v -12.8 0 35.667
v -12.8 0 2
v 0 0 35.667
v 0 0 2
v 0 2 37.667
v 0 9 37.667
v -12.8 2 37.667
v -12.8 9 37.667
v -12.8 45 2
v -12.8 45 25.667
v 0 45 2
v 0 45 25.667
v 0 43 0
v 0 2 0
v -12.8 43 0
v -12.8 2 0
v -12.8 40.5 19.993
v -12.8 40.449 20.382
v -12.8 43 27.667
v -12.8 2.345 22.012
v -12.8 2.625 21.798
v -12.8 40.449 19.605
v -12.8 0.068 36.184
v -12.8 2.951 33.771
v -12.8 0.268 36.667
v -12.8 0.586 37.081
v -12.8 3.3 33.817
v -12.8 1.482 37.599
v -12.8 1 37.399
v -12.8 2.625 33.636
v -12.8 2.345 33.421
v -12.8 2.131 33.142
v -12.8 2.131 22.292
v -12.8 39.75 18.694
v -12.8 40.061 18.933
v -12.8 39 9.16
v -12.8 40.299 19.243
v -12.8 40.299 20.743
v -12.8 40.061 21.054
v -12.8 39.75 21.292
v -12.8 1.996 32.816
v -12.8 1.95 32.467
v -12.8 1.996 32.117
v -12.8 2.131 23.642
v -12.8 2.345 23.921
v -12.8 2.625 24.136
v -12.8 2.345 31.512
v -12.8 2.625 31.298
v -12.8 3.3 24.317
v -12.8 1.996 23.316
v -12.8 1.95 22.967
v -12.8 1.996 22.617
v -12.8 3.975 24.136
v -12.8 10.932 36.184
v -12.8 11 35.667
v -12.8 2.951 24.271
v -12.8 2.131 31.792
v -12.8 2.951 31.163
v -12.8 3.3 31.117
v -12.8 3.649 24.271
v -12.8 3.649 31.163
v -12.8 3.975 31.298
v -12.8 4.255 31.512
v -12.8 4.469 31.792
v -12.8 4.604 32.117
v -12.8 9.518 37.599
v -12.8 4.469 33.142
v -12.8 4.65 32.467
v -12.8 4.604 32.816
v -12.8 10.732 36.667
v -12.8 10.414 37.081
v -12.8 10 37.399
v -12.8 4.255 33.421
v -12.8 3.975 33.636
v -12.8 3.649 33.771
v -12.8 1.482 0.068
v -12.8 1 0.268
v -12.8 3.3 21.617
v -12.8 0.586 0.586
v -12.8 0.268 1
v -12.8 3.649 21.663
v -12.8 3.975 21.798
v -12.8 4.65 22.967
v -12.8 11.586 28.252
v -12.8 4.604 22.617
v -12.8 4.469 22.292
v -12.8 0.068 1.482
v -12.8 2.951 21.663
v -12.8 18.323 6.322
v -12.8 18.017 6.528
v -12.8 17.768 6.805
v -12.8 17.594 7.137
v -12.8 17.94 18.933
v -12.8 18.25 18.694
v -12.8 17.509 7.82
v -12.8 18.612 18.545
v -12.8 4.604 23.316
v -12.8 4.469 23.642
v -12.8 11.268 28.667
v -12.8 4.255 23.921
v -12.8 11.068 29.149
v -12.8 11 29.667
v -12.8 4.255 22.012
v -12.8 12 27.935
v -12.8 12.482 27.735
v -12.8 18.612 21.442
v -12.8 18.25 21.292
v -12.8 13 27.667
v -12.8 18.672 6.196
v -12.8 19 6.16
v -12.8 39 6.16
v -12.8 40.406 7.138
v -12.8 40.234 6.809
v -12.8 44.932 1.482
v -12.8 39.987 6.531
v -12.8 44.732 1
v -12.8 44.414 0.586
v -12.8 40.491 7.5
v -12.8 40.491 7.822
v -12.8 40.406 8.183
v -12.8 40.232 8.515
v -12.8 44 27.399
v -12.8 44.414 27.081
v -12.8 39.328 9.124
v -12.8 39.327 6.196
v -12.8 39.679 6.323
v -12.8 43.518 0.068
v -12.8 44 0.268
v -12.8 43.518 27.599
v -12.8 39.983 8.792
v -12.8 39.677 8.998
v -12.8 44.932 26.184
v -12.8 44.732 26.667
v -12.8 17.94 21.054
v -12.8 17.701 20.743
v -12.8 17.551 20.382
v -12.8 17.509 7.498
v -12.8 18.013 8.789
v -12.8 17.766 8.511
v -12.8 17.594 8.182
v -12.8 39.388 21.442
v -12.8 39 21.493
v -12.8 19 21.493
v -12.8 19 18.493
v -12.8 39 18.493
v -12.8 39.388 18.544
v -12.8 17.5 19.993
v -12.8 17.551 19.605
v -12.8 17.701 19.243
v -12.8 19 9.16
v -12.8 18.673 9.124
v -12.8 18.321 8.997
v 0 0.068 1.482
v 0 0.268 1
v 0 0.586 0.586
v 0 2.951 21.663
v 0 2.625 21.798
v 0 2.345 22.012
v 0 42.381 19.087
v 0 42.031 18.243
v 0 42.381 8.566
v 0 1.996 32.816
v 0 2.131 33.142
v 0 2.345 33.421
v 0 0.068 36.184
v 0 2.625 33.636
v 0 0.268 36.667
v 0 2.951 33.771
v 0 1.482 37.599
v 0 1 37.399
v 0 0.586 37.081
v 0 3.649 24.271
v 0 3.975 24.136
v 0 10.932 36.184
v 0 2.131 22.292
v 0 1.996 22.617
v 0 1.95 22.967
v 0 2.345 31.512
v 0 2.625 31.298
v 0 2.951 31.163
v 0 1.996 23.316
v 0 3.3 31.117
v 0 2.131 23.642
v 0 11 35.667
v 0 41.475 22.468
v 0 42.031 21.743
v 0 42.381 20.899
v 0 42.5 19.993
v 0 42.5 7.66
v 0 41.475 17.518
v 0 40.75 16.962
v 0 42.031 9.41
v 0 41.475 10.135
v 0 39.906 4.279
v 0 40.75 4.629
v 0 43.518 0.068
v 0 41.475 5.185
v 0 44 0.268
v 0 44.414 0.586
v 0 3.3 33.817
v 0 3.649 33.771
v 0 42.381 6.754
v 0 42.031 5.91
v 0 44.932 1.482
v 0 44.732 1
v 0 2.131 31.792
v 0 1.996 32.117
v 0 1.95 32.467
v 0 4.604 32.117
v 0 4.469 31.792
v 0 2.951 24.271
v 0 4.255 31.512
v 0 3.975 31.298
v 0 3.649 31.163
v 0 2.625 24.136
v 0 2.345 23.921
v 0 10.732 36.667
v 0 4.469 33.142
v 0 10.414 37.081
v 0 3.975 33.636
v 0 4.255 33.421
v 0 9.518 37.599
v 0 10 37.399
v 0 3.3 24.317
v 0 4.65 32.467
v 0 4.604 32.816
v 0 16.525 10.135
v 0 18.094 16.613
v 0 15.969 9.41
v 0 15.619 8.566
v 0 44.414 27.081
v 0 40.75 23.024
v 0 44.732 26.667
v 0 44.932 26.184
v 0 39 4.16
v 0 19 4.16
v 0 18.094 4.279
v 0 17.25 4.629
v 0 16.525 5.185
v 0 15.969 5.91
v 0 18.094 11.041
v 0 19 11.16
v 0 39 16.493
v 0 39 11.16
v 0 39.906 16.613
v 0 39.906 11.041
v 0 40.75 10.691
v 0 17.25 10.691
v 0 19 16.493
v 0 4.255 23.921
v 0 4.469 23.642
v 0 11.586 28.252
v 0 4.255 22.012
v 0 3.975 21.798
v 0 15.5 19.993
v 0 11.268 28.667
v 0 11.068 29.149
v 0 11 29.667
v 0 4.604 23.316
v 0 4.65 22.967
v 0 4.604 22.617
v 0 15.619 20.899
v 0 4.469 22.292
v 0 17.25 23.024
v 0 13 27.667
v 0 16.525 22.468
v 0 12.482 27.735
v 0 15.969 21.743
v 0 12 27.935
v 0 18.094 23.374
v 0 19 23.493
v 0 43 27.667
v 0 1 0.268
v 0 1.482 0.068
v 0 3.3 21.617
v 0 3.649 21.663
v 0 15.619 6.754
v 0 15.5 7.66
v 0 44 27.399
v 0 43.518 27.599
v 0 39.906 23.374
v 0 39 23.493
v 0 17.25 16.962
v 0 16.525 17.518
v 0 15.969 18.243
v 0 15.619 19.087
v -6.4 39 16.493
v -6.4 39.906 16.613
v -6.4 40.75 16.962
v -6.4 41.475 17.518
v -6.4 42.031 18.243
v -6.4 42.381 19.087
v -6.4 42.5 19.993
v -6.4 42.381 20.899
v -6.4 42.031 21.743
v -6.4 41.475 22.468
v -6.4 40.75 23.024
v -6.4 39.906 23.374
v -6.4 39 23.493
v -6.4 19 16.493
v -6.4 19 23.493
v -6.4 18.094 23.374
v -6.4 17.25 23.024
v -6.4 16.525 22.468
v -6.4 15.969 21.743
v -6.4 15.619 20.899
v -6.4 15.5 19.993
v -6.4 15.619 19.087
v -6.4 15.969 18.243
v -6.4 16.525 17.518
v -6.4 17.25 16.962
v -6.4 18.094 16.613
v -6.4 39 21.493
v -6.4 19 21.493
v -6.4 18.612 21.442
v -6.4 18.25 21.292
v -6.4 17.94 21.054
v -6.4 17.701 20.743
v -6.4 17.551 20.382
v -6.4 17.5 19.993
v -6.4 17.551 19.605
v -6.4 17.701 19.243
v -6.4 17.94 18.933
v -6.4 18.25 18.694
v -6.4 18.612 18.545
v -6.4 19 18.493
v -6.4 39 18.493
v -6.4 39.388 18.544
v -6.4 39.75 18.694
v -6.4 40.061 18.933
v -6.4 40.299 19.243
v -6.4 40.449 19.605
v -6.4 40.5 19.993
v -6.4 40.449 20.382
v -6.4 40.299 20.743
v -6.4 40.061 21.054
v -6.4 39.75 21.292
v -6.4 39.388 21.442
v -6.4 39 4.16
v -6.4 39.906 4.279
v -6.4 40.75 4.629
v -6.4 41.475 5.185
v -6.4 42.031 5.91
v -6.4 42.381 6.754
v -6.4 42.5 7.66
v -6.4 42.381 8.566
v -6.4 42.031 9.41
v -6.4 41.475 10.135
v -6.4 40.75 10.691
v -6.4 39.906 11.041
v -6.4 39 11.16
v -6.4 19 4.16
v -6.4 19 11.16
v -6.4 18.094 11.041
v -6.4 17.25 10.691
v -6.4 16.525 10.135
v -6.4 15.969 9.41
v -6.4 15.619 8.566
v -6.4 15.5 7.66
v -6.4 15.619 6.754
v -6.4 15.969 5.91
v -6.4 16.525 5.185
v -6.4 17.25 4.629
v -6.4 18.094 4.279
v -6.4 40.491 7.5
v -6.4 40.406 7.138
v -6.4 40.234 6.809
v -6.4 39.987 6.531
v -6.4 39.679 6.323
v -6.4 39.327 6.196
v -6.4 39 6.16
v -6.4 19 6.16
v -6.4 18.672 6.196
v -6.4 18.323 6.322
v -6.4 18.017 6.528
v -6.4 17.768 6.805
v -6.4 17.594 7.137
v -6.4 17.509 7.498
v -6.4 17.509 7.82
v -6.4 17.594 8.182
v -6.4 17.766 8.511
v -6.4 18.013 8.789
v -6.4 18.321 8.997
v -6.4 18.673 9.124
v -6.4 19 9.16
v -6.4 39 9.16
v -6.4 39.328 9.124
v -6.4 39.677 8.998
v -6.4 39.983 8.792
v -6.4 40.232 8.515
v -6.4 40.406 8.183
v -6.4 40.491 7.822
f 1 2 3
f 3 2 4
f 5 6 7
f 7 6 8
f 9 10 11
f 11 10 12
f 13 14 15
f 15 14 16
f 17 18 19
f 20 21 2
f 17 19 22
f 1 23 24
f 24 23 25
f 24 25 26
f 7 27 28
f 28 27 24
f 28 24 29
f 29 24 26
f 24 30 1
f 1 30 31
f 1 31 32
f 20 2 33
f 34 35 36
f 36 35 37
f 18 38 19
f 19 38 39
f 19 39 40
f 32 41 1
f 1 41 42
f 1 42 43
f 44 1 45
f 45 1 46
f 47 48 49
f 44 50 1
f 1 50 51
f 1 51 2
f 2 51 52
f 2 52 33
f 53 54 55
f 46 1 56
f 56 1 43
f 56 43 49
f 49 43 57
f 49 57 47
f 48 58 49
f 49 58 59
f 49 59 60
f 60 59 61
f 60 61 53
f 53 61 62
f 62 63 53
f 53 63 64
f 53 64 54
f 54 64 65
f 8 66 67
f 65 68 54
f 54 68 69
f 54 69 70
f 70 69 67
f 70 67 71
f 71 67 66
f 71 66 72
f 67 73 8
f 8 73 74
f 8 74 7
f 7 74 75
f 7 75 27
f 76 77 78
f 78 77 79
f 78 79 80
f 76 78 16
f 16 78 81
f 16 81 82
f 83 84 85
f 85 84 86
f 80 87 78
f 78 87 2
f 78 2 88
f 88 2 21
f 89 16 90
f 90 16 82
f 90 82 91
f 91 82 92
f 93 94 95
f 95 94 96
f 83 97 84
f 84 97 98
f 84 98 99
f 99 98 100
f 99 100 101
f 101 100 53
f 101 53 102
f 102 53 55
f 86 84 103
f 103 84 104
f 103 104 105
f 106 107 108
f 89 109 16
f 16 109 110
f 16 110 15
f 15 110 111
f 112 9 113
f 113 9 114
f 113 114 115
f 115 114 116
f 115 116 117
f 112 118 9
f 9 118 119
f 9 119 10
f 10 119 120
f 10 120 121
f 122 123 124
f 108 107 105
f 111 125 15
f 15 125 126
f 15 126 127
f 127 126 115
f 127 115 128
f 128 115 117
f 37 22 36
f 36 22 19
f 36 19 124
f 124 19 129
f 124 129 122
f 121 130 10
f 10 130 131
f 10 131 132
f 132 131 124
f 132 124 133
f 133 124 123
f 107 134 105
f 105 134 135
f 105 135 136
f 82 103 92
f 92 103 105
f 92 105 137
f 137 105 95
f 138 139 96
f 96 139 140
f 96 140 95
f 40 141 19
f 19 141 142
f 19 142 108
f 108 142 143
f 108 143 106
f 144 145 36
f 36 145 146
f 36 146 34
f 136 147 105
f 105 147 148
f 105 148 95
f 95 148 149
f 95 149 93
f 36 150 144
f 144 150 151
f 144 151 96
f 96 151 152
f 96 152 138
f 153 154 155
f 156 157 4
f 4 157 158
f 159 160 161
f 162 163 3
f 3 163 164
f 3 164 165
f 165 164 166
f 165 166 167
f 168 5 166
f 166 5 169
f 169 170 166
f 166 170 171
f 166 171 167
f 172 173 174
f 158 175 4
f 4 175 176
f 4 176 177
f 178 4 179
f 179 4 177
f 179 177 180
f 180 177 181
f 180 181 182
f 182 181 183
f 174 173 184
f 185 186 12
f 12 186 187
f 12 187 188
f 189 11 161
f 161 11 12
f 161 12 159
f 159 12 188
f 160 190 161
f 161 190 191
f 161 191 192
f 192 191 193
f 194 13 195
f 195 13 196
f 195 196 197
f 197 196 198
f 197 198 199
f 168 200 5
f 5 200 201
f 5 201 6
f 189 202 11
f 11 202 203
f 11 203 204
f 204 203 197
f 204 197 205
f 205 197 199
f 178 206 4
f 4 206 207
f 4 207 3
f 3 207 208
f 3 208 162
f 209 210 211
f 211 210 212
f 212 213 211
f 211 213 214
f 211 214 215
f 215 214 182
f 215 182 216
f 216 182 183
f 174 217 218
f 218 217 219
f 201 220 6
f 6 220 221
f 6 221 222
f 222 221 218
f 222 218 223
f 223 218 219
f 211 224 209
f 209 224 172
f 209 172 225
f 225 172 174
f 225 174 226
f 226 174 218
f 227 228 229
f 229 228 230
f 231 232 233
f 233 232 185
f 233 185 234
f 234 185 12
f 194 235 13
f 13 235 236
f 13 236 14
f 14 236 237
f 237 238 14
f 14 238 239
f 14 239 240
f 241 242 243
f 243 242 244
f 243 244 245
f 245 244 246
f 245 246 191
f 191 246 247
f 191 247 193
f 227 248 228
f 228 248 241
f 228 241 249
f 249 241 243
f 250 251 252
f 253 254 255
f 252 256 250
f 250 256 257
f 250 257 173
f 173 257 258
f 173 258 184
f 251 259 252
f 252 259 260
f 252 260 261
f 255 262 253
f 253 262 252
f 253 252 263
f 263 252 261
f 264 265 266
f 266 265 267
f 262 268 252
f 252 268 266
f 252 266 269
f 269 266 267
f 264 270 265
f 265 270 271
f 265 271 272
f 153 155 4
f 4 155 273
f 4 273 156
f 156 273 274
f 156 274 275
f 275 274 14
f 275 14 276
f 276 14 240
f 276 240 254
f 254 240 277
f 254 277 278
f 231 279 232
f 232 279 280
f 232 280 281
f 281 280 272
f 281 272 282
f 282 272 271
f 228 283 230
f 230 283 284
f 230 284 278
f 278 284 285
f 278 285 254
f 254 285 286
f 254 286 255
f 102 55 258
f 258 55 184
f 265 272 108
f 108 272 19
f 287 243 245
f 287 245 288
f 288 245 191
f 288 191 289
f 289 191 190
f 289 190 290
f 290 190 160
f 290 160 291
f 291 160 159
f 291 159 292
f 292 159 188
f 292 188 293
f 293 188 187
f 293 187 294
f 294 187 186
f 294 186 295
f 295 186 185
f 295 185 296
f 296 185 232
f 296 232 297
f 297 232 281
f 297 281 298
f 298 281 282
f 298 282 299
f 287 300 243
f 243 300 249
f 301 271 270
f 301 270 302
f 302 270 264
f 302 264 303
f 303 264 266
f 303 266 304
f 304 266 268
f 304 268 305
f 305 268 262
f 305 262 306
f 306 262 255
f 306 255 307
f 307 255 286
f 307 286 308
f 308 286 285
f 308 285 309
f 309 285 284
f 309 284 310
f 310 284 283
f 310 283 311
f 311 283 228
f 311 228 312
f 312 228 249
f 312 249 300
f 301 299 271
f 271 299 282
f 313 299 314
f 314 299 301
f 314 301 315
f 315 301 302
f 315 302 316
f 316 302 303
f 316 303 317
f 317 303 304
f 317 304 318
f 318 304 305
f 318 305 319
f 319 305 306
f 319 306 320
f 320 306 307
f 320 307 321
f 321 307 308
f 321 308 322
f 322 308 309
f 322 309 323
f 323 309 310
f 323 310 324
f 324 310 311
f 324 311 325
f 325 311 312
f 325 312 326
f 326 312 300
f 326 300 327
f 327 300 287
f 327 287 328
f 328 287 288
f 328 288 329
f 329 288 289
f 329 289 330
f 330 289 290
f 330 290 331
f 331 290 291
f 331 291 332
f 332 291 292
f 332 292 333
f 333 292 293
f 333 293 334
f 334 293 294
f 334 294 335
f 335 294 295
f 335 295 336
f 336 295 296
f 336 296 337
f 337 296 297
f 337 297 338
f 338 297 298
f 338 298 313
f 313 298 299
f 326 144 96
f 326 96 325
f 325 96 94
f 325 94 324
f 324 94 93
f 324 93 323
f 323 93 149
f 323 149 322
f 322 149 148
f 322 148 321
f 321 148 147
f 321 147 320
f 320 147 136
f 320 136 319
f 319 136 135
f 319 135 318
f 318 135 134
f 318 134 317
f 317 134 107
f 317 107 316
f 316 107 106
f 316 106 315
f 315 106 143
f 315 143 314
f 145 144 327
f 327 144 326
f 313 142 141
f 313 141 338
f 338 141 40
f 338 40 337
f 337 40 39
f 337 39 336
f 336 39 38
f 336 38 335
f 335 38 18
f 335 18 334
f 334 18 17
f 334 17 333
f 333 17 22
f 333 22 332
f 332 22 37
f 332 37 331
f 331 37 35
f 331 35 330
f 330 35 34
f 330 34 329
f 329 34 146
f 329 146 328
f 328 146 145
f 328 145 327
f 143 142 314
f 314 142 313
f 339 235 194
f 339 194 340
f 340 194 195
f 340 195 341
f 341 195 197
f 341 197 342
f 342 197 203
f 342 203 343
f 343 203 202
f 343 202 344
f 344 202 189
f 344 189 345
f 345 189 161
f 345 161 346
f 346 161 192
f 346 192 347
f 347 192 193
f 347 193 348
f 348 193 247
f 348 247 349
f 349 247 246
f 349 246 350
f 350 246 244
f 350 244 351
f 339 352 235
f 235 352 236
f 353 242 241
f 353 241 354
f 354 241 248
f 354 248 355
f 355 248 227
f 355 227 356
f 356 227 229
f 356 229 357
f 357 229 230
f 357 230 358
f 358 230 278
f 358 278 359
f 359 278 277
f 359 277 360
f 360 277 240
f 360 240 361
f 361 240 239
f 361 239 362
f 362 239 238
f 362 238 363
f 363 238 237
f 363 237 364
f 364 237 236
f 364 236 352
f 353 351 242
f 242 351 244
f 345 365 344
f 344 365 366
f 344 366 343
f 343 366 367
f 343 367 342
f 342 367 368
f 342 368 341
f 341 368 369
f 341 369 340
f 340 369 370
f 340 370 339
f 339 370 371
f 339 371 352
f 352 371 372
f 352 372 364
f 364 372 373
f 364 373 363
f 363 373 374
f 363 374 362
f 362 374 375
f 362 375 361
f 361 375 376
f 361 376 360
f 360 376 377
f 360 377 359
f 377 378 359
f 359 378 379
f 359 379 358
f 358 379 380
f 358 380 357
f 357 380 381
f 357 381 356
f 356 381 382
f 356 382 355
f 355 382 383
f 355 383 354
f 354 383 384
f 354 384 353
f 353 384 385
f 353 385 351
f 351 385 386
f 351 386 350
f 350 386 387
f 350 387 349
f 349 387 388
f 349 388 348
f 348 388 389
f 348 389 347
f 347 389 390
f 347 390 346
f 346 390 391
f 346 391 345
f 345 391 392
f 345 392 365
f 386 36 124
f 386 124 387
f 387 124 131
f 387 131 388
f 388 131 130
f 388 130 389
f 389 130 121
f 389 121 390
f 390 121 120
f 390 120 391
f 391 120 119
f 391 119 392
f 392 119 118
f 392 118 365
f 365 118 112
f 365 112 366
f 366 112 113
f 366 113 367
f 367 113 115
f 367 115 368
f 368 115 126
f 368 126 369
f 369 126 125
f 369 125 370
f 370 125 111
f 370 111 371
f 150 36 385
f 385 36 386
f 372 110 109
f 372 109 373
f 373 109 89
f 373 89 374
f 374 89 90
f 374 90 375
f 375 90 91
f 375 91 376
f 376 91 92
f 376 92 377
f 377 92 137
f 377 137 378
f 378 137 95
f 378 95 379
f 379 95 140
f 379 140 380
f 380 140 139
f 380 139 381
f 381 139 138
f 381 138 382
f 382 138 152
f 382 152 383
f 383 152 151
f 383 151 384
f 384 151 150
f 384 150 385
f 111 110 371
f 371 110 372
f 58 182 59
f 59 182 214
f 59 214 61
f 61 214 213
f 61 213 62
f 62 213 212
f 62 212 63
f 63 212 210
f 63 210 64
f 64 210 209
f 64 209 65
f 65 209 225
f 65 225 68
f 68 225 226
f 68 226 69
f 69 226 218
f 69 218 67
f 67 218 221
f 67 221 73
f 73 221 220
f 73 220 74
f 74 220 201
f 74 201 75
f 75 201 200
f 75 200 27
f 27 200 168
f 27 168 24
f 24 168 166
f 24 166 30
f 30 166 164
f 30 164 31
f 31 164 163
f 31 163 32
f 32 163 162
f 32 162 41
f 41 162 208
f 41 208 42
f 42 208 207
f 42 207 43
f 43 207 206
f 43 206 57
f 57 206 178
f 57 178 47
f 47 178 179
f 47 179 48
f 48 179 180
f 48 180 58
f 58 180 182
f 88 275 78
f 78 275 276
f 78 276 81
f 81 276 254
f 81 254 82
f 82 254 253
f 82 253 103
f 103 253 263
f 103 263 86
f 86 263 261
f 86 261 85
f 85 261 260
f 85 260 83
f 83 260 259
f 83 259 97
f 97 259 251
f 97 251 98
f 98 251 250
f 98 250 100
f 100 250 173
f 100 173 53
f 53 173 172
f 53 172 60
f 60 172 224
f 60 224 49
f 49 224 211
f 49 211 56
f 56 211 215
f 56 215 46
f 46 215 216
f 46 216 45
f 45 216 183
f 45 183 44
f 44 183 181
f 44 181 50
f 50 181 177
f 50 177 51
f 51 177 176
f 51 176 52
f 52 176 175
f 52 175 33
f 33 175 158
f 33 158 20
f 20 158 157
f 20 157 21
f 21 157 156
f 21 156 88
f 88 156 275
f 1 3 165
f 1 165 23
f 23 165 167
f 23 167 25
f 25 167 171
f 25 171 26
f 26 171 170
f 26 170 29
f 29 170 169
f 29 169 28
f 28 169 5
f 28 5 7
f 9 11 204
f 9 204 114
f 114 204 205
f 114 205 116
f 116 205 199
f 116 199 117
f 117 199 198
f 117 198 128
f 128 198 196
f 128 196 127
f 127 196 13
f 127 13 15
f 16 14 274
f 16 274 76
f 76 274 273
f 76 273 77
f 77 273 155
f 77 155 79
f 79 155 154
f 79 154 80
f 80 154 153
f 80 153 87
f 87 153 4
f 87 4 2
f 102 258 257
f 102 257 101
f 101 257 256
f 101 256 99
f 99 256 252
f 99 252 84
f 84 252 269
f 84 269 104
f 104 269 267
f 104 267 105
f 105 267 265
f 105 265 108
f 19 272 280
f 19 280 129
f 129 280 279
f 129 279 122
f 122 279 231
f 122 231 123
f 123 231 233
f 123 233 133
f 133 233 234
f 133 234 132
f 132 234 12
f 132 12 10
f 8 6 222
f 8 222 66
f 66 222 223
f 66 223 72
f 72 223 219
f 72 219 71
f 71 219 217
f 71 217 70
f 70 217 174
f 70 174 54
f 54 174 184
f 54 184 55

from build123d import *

# Parameters (mm, degrees)
SKETCH1_W                  = 37.6666666
SKETCH1_H                  = 45
BOSS_EXTRUDE1_DEPTH        = 12.8
SKETCH2_W                  = 10
SKETCH2_H                  = 34
CUT_EXTRUDE1_DEPTH         = 61.063447893
CUT_EXTRUDE2_DEPTH         = 6.4
CUT_EXTRUDE3_DEPTH         = 61.063447893
CUT_EXTRUDE4_DEPTH         = 6.4
CUT_EXTRUDE5_DEPTH         = 61.063447893
F_2_7_2_7_DIAMETER_HOLE1_D = 2.7
FILLET1_R                  = 2


with BuildPart() as part:
    # Sketch1 → Boss-Extrude1 (new body)
    with BuildSketch(Plane(origin=(0, 0, 0), x_dir=(0, 0, -1), z_dir=(1, 0, 0))):
        with Locations((-18.8333333, 22.5)):
            Rectangle(SKETCH1_W, SKETCH1_H)
    extrude(amount=-BOSS_EXTRUDE1_DEPTH)

    # Sketch2 → Cut-Extrude1 (cut, through all)
    with BuildSketch(Plane.ZY.offset(12.8)):
        with Locations((32.6666666, 28)):
            Rectangle(SKETCH2_W, SKETCH2_H)
    extrude(amount=-CUT_EXTRUDE1_DEPTH, mode=Mode.SUBTRACT)

    # Sketch3 → Cut-Extrude2 (cut)
    with BuildSketch(Plane(origin=(0, 0, 0), x_dir=(0, 0, -1), z_dir=(1, 0, 0))):
        with BuildLine():
            Line((-23.4933333, 39), (-23.4933333, 19))
            ThreePointArc((-23.4933333, 19), (-19.9933333, 15.5), (-16.4933333, 19))
            Line((-16.4933333, 19), (-16.4933333, 39))
            ThreePointArc((-16.4933333, 39), (-19.9933333, 42.5), (-23.4933333, 39))
        make_face()
    extrude(amount=-CUT_EXTRUDE2_DEPTH, mode=Mode.SUBTRACT)

    # Sketch4 → Cut-Extrude3 (cut, through all)
    with BuildSketch(Plane.ZY.offset(12.8)):
        with BuildLine():
            Line((21.4933333, 19), (21.4933333, 39))
            ThreePointArc((21.4933333, 39), (19.9933333, 40.5), (18.4933333, 39))
            Line((18.4933333, 39), (18.4933333, 19))
            ThreePointArc((18.4933333, 19), (19.9933333, 17.500288491), (21.4933333, 19))
        make_face()
    extrude(amount=-CUT_EXTRUDE3_DEPTH, mode=Mode.SUBTRACT)

    # Sketch5 → Cut-Extrude4 (cut)
    with BuildSketch(Plane(origin=(0, 0, 0), x_dir=(0, 0, -1), z_dir=(1, 0, 0))):
        with BuildLine():
            Line((-11.16, 39), (-11.16, 19))
            ThreePointArc((-11.16, 19), (-7.66, 15.5), (-4.16, 19))
            Line((-4.16, 19), (-4.16, 39))
            ThreePointArc((-4.16, 39), (-7.66, 42.5), (-11.16, 39))
        make_face()
    extrude(amount=-CUT_EXTRUDE4_DEPTH, mode=Mode.SUBTRACT)

    # Sketch6 → Cut-Extrude5 (cut, through all)
    with BuildSketch(Plane.ZY.offset(12.8)):
        with BuildLine():
            Line((6.16, 39), (6.16, 19))
            add(Edge.make_bspline(
                [(6.16, 19), (6.16, 18.832340191), (6.188940738, 18.662362459), (6.244463512, 18.504163113), (6.299983926, 18.345970491), (6.383577698, 18.195200889), (6.488243805, 18.06423361), (6.593105783, 17.93302124), (6.722000277, 17.818058166), (6.864319793, 17.728851239), (7.006949165, 17.639450093), (7.167029387, 17.573470631), (7.331255049, 17.536516135), (7.494915324, 17.499688864), (7.667199859, 17.490652088), (7.833819766, 17.510113335), (8.000323921, 17.529561063), (8.165758477, 17.578061145), (8.316432476, 17.651540351), (8.467050084, 17.724992056), (8.60707111, 17.825389016), (8.725036325, 17.944405925), (8.843438847, 18.063864039), (8.942888294, 18.205385466), (9.015071831, 18.357302993), (9.087259254, 18.5092287), (9.134141581, 18.67576982), (9.151759986, 18.843048139), (9.157247483, 18.895149292), (9.16, 18.947610662), (9.16, 19)],
                knots=[0, 0, 0, 0, 0.000502979, 0.000502979, 0.000502979, 0.001005909, 0.001005909, 0.001005909, 0.001509785, 0.001509785, 0.001509785, 0.002014828, 0.002014828, 0.002014828, 0.002518084, 0.002518084, 0.002518084, 0.003020994, 0.003020994, 0.003020994, 0.00352367, 0.00352367, 0.00352367, 0.004028264, 0.004028264, 0.004028264, 0.004532927, 0.004532927, 0.004532927, 0.004688075, 0.004688075, 0.004688075, 0.004688075], degree=3))
            Line((9.16, 19), (9.16, 39))
            add(Edge.make_bspline(
                [(9.16, 39), (9.16, 39.167659809), (9.131059262, 39.337637541), (9.075536488, 39.495836887), (9.020016074, 39.654029509), (8.936422302, 39.804799111), (8.831756195, 39.93576639), (8.726894217, 40.06697876), (8.597999723, 40.181941834), (8.455680207, 40.271148761), (8.313050835, 40.360549907), (8.152970613, 40.426529369), (7.988744951, 40.463483865), (7.825084676, 40.500311136), (7.652800141, 40.509347912), (7.486180234, 40.489886665), (7.319676079, 40.470438937), (7.154241523, 40.421938855), (7.003567524, 40.348459649), (6.852949916, 40.275007944), (6.71292889, 40.174610984), (6.594963675, 40.055594075), (6.476561153, 39.936135961), (6.377111706, 39.794614534), (6.304928169, 39.642697007), (6.232740746, 39.4907713), (6.185858419, 39.32423018), (6.168240014, 39.156951861), (6.162752517, 39.104850708), (6.16, 39.052389338), (6.16, 39)],
                knots=[0, 0, 0, 0, 0.000502979, 0.000502979, 0.000502979, 0.001005909, 0.001005909, 0.001005909, 0.001509785, 0.001509785, 0.001509785, 0.002014828, 0.002014828, 0.002014828, 0.002518084, 0.002518084, 0.002518084, 0.003020994, 0.003020994, 0.003020994, 0.00352367, 0.00352367, 0.00352367, 0.004028264, 0.004028264, 0.004028264, 0.004532927, 0.004532927, 0.004532927, 0.004688075, 0.004688075, 0.004688075, 0.004688075], degree=3))
        make_face()
    extrude(amount=-CUT_EXTRUDE5_DEPTH, mode=Mode.SUBTRACT)

    # Ø2.7 (2.7) Diameter Hole1 (through all)
    with Locations(Plane(origin=(0, 0, 0), x_dir=(0, 0, -1), z_dir=(1, 0, 0))):
        with Locations((-22.9666666, 3.3), (-32.4666666, 3.3)):
            Hole(F_2_7_2_7_DIAMETER_HOLE1_D / 2)

    # Fillet1
    fillet1_edges = [part.edges().sort_by_distance(p)[0] for p in [
        (-6.4, 45, 27.6666666),
        (-6.4, 11, 37.6666666),
        (-6.4, 11, 27.6666666),
        (-6.4, 0, 37.6666666),
        (-6.4, 45, 0),
        (-6.4, 0, 0),
    ]]
    fillet(fillet1_edges, radius=FILLET1_R)


solid = part.part
